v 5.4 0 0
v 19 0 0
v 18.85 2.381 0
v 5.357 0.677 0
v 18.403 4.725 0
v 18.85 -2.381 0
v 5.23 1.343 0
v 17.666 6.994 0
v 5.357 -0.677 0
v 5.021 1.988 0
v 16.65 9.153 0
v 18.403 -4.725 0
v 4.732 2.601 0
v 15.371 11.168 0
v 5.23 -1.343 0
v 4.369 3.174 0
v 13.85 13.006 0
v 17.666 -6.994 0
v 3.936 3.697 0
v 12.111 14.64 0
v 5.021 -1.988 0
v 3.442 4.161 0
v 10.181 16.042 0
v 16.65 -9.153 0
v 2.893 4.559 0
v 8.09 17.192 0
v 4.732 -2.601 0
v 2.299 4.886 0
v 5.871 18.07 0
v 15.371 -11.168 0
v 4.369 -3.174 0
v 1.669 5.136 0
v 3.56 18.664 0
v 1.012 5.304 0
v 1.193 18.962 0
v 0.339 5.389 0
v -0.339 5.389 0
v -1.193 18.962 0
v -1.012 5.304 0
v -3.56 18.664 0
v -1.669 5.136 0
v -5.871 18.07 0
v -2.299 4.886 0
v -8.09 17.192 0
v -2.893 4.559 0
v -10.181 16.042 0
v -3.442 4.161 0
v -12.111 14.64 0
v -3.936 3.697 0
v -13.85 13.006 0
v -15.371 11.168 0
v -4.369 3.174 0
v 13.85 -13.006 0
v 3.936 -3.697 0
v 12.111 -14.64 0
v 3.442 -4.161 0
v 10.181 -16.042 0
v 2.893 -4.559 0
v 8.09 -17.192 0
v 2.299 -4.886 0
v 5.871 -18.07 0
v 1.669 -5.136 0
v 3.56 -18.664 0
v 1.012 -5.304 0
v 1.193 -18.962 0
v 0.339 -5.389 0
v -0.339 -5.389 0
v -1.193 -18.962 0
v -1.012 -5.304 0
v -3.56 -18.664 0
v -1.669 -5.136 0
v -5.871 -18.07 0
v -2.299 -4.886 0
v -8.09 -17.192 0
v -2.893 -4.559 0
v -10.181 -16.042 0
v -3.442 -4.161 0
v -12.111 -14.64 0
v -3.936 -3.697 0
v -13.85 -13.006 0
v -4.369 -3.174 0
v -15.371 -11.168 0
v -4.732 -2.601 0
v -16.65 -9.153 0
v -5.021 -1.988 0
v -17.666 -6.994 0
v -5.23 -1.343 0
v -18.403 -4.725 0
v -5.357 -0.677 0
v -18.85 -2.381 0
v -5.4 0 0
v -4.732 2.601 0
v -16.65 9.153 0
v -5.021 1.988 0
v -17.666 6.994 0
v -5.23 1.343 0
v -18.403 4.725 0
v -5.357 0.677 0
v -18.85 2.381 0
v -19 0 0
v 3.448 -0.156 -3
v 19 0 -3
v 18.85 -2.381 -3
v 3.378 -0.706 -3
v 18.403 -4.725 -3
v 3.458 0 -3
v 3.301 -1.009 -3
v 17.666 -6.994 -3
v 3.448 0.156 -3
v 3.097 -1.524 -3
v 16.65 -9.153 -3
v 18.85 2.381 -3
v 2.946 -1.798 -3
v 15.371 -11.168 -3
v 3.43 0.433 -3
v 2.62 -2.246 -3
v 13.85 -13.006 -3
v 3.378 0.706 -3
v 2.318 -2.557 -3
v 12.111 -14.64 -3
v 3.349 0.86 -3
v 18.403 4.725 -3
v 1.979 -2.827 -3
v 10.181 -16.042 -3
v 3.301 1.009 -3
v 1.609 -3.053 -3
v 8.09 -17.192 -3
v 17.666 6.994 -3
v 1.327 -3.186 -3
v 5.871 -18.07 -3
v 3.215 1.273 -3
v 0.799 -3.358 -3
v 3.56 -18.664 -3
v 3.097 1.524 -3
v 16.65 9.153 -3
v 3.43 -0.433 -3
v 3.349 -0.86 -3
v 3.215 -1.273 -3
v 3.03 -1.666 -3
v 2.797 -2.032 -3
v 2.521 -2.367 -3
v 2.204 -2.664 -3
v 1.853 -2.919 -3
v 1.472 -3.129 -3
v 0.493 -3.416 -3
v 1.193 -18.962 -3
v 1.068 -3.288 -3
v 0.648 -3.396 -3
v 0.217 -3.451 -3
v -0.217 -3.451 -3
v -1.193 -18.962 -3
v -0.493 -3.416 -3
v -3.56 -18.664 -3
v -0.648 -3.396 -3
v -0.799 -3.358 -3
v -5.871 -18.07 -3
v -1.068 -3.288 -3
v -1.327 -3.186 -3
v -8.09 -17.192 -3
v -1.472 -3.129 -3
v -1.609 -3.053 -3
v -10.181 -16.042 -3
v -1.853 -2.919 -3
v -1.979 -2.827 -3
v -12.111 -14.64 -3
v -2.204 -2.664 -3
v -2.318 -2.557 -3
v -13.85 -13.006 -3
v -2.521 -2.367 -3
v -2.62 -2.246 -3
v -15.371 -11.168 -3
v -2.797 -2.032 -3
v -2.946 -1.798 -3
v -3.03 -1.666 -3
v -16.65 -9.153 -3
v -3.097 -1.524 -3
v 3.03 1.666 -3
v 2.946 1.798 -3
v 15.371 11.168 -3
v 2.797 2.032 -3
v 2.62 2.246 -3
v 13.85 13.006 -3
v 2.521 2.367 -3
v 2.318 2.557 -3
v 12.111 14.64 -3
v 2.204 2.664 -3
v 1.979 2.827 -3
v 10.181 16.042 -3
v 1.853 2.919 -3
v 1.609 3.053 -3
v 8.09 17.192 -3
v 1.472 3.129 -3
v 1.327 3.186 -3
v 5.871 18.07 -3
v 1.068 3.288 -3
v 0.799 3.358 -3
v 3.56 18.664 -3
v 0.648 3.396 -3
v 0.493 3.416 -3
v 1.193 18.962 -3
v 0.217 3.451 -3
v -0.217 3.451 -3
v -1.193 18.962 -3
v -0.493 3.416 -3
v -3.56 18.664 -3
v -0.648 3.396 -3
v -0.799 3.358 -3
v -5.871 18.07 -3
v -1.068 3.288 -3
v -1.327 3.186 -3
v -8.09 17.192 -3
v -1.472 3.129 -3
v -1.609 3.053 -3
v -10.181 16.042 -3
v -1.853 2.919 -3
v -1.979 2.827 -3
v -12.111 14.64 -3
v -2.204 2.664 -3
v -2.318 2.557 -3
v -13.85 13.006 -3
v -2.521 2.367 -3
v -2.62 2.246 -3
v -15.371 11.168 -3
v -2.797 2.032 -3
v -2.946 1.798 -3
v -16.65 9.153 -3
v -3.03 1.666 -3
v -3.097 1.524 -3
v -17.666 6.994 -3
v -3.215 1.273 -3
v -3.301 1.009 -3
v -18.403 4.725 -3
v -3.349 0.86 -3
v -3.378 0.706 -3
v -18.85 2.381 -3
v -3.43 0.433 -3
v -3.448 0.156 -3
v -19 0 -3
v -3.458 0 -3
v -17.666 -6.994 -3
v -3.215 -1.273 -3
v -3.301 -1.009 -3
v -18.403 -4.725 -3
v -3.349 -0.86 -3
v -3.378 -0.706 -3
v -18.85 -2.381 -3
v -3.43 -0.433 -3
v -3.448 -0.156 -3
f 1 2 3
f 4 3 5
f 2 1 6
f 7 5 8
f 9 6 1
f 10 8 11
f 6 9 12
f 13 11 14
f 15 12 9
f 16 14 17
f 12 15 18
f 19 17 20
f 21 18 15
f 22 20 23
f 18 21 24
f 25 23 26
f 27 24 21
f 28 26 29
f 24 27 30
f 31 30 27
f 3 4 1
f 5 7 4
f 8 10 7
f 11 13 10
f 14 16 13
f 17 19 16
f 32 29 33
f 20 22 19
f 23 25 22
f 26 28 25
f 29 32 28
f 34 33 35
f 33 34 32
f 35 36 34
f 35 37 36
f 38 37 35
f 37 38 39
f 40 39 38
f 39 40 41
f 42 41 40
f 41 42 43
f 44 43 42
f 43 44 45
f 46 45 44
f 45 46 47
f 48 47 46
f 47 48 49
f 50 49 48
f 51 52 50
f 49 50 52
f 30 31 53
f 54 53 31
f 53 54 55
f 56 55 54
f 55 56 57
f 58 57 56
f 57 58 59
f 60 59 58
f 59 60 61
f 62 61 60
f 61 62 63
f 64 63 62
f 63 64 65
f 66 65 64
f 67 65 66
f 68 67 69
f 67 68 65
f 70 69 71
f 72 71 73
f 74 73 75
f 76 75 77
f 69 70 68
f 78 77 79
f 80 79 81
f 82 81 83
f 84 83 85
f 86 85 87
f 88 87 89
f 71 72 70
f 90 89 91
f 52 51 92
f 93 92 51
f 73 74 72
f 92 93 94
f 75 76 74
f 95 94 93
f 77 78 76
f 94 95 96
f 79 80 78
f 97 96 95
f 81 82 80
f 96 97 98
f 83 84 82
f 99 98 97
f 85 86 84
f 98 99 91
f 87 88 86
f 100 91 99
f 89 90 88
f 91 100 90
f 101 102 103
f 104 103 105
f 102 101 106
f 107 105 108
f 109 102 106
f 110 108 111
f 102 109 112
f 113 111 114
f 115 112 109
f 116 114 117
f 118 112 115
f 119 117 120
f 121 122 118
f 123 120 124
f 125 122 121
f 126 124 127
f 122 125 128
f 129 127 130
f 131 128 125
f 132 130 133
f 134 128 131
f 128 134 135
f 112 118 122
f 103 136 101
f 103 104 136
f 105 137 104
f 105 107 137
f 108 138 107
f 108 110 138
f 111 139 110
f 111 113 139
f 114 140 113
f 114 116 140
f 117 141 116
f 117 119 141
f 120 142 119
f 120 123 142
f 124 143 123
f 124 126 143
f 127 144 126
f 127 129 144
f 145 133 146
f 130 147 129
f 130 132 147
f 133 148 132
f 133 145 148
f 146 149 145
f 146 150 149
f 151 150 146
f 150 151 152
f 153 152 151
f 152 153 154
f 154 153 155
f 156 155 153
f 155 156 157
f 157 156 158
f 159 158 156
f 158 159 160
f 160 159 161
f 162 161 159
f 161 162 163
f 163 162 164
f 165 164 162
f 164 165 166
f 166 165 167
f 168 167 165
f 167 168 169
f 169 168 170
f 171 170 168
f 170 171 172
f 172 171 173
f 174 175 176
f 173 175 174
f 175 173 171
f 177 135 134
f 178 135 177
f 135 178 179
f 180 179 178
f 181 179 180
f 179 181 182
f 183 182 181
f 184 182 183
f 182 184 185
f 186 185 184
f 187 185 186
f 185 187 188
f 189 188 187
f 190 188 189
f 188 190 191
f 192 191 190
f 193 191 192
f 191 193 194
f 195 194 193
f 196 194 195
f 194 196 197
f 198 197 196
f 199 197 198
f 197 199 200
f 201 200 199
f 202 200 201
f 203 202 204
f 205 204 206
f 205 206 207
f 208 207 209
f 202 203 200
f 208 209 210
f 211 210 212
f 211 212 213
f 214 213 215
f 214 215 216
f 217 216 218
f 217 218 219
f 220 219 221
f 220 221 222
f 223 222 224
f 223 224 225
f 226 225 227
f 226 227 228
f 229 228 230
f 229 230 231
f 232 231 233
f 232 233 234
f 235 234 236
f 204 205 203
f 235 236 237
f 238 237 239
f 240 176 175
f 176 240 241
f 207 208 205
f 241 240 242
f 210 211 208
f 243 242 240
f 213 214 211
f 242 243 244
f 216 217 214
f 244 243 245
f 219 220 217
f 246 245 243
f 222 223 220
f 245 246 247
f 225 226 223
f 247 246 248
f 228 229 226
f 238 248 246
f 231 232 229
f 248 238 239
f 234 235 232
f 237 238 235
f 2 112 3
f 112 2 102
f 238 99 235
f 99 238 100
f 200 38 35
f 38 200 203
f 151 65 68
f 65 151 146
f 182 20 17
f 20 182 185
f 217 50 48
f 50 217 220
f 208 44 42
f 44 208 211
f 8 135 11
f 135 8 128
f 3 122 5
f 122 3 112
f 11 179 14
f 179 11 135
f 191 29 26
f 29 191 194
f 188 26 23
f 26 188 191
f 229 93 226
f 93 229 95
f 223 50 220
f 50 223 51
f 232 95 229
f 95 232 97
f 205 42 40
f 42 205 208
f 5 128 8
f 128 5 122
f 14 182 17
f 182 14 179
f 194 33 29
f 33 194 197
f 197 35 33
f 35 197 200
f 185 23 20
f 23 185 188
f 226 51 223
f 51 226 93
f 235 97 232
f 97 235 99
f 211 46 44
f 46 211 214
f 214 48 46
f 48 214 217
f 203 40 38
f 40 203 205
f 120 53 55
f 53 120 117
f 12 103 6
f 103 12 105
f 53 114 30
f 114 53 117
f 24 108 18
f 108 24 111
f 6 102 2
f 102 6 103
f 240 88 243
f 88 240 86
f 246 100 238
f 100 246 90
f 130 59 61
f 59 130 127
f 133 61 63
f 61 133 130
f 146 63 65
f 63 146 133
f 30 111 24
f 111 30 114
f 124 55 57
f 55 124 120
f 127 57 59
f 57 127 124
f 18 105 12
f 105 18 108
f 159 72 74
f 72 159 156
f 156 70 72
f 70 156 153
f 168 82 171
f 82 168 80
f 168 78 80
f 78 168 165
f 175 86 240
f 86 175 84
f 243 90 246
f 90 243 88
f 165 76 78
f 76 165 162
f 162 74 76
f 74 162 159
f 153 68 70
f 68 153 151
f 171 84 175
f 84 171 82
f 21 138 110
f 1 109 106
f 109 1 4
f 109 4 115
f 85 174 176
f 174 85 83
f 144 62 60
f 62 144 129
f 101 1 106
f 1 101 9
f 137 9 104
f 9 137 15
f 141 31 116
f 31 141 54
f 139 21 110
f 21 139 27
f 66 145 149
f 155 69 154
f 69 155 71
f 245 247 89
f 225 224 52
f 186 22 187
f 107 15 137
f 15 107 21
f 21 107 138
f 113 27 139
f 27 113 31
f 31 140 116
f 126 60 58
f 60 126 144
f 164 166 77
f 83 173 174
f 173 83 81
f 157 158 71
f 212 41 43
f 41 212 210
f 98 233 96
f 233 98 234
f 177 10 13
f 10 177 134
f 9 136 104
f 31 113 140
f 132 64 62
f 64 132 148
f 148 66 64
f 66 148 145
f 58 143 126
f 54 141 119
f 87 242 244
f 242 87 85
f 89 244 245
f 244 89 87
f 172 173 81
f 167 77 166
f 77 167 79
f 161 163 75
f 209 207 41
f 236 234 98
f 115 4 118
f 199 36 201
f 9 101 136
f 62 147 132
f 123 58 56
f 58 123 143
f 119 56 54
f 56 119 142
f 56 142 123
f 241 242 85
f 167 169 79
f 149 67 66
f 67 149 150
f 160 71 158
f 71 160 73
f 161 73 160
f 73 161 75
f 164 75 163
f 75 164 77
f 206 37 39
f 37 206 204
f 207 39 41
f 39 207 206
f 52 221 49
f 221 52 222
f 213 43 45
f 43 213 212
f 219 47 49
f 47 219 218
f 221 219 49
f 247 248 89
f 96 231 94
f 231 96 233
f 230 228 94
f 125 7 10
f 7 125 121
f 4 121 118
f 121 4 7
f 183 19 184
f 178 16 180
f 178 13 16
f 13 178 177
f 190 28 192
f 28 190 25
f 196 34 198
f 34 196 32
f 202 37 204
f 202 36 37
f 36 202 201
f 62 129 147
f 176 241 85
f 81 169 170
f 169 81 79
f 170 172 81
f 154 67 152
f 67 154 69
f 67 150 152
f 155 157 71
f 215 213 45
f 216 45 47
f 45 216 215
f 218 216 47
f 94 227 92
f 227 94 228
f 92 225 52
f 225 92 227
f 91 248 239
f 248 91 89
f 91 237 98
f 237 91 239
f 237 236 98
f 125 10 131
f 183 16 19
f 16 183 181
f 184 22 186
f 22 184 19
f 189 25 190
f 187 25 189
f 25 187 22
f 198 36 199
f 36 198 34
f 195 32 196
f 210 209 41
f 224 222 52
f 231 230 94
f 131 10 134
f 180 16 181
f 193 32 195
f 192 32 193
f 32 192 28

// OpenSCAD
$fn = 50;


difference() {
	union() {
		translate(v = [0, 0, -3.0000000000]) {
			cylinder(h = 3, r = 10.0000000000);
		}
		translate(v = [0, 0, -3.0000000000]) {
			cylinder(h = 3, r = 19.0000000000);
		}
	}
	union() {
		translate(v = [0, 0, 0]) {
			rotate(a = [0, 0, 0]) {
				difference() {
					union() {
						#translate(v = [0, 0, -3.0000000000]) {
							cylinder(h = 3, r = 2.6000000000);
						}
						#translate(v = [0, 0, -3.9000000000]) {
							cylinder(h = 3.9000000000, r1 = 2.8750000000, r2 = 5.4000000000);
						}
						#translate(v = [0, 0, -3.0000000000]) {
							cylinder(h = 3, r = 2.8750000000);
						}
						#translate(v = [0, 0, -3.0000000000]) {
							cylinder(h = 3, r = 2.6000000000);
						}
					}
					union();
				}
			}
		}
	}
}
